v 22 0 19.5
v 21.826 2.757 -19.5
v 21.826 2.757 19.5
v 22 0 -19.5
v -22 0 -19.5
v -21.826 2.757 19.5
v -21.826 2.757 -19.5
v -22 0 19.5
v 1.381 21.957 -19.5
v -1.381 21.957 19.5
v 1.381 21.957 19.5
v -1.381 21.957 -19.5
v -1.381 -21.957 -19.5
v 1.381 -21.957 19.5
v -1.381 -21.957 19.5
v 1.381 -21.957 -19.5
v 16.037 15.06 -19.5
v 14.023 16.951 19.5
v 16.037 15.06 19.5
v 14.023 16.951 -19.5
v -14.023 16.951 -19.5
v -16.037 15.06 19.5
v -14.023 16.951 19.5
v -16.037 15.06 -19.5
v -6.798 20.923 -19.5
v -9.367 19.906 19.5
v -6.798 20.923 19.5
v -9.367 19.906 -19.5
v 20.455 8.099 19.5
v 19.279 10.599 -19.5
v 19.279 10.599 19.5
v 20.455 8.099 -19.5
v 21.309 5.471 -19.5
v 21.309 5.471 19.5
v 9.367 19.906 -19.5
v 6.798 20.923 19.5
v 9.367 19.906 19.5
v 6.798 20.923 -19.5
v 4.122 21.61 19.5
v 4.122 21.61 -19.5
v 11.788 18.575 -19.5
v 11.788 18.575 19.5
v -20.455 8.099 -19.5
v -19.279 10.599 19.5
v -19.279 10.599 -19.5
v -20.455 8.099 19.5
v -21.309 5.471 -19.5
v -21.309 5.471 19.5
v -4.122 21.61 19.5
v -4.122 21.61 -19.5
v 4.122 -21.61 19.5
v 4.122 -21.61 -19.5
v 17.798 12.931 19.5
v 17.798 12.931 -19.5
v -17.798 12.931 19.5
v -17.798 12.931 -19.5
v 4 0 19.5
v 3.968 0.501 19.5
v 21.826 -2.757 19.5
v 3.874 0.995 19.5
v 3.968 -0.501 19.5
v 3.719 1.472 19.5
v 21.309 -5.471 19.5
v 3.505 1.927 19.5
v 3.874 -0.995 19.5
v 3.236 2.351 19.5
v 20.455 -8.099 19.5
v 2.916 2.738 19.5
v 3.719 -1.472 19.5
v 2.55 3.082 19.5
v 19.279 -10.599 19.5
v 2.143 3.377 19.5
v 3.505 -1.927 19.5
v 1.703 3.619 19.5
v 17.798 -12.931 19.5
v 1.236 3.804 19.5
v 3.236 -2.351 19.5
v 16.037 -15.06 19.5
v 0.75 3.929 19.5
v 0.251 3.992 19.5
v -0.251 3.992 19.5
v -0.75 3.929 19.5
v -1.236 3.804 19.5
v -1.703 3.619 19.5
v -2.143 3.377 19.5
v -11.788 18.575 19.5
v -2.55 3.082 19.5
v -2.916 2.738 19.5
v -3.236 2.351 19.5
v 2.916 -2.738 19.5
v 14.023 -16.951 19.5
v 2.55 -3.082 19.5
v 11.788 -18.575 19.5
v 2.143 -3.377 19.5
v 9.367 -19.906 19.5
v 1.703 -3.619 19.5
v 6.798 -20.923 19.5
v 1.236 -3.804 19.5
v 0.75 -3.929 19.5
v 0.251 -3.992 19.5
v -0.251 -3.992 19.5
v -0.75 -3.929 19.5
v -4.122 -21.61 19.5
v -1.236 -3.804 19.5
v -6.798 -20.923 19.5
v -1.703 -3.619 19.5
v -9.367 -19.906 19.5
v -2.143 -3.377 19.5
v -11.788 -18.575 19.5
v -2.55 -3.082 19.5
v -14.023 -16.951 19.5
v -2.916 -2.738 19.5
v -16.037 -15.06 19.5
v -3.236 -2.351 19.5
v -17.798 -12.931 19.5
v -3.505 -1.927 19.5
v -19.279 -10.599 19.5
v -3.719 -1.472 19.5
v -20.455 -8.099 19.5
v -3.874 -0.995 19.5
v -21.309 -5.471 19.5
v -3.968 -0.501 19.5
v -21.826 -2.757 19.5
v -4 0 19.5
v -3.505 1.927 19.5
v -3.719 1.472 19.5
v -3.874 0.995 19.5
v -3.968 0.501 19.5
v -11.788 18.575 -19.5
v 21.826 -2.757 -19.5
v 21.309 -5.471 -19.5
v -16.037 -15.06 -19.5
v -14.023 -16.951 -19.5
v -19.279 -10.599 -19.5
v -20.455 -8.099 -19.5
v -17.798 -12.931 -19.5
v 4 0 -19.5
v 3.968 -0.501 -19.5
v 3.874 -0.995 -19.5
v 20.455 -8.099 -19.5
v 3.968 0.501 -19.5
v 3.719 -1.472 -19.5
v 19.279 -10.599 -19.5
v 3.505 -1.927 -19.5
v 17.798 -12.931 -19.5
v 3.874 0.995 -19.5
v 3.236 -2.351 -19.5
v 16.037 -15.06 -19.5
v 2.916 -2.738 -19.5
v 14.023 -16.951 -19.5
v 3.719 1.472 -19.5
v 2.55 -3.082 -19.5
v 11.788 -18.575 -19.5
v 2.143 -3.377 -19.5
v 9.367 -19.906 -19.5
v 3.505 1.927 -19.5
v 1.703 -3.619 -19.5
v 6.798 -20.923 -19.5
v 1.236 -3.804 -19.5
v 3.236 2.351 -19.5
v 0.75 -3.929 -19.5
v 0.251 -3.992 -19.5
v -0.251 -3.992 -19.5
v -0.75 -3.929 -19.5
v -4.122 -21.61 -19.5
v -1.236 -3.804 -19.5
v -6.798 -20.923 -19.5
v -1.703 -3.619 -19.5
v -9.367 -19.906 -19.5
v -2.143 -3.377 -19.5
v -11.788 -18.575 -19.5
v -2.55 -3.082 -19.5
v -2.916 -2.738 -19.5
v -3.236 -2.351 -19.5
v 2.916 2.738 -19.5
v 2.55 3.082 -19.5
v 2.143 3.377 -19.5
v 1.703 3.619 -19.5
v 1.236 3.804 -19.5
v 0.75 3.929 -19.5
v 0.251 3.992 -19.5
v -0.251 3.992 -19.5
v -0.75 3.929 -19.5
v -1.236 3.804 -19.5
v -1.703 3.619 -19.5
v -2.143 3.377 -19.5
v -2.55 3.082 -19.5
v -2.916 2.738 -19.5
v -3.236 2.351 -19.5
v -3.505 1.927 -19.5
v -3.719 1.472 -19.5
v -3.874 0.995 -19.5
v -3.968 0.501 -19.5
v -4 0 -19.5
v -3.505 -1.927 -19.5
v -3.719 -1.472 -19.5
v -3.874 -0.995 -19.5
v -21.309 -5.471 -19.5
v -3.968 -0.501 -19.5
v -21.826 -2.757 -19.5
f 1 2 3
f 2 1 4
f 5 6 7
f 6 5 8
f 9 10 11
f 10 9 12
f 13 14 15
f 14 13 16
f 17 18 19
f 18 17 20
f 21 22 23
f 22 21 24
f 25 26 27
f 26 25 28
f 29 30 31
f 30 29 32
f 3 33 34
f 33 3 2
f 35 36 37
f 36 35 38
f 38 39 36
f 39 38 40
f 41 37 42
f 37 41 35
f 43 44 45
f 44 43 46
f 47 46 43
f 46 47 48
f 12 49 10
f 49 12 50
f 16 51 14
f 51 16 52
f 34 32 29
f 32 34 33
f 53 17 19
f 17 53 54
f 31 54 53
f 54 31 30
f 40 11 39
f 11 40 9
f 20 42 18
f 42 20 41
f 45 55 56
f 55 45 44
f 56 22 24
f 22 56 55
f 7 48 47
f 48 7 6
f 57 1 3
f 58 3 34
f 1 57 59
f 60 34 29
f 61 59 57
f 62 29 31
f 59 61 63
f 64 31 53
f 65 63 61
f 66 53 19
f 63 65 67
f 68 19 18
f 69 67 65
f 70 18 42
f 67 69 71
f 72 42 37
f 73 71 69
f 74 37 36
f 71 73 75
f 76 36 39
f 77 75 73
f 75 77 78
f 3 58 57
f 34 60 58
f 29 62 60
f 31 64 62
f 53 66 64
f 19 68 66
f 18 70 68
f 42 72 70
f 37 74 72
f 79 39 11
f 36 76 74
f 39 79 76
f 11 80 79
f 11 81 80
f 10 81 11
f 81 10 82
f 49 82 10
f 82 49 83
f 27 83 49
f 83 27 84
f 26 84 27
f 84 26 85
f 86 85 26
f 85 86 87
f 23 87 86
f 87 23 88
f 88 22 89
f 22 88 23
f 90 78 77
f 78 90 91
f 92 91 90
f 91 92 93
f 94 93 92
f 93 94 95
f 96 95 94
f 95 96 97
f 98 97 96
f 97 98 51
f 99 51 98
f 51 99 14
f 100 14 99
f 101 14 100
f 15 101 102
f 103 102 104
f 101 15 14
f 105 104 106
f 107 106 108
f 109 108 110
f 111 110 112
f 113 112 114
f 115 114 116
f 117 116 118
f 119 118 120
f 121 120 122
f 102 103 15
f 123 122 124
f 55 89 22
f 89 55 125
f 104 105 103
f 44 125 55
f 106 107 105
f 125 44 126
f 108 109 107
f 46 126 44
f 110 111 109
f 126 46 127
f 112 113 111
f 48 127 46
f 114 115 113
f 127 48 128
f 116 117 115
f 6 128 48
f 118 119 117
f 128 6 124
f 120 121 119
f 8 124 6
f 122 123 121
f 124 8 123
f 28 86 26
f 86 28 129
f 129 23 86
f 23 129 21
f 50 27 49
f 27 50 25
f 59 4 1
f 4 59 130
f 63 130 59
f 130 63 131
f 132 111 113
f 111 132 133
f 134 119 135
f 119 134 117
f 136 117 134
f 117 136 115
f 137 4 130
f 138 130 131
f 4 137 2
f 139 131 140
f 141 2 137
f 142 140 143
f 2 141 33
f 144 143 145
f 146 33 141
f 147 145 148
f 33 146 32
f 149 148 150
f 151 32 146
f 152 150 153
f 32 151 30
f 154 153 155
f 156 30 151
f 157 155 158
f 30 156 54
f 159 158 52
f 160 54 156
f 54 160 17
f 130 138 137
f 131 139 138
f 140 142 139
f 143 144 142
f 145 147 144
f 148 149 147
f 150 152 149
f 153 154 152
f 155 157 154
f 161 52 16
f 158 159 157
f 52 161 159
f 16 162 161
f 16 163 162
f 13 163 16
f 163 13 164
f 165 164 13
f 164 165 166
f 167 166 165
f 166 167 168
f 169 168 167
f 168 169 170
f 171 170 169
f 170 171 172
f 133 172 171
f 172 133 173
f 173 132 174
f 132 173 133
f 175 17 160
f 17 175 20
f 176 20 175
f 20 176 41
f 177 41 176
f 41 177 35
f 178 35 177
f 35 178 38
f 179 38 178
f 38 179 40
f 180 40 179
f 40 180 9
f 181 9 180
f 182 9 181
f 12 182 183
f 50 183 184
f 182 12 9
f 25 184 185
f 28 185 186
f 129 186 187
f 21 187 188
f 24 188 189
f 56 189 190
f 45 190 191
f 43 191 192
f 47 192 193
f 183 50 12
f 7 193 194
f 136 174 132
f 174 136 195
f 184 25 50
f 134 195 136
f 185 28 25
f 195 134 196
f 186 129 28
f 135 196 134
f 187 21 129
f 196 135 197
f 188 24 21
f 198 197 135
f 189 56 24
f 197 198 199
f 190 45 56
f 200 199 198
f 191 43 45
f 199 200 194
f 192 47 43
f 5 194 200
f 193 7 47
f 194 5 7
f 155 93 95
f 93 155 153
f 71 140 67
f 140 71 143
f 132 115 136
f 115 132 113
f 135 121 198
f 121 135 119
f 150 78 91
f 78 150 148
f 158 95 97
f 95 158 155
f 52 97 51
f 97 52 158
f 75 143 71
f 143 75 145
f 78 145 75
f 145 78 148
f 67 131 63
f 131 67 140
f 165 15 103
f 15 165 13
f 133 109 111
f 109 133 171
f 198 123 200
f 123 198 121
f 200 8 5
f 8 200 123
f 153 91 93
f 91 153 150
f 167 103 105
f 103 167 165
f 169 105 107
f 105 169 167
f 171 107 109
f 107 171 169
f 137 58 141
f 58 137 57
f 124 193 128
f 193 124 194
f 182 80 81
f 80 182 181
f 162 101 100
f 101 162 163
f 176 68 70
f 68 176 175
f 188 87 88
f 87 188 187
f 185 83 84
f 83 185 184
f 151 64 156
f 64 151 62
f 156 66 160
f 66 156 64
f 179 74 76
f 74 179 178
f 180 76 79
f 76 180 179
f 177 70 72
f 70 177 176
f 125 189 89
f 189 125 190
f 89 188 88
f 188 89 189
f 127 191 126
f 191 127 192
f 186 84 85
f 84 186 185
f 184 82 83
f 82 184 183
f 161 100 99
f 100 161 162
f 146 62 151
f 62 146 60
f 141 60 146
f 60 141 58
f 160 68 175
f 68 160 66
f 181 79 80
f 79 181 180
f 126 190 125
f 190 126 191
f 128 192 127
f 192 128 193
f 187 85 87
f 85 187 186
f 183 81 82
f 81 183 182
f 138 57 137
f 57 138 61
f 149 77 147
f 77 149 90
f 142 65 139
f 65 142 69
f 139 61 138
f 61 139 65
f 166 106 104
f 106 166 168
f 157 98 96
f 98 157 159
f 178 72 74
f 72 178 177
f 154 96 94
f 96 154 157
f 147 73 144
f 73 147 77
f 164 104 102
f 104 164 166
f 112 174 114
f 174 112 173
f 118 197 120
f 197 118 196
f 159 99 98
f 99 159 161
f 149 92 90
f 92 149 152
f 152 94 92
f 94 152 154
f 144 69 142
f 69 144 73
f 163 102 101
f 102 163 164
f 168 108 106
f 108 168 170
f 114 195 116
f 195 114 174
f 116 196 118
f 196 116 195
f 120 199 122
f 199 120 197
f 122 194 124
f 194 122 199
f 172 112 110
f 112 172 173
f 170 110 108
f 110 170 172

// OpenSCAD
$fn = 50;


difference() {
	union() {
		translate(v = [0, 0, -19.5000000000]) {
			cylinder(h = 39, r = 22.0000000000);
		}
	}
	union() {
		translate(v = [0, 0, -100.0000000000]) {
			cylinder(h = 200, r = 4);
		}
	}
}
